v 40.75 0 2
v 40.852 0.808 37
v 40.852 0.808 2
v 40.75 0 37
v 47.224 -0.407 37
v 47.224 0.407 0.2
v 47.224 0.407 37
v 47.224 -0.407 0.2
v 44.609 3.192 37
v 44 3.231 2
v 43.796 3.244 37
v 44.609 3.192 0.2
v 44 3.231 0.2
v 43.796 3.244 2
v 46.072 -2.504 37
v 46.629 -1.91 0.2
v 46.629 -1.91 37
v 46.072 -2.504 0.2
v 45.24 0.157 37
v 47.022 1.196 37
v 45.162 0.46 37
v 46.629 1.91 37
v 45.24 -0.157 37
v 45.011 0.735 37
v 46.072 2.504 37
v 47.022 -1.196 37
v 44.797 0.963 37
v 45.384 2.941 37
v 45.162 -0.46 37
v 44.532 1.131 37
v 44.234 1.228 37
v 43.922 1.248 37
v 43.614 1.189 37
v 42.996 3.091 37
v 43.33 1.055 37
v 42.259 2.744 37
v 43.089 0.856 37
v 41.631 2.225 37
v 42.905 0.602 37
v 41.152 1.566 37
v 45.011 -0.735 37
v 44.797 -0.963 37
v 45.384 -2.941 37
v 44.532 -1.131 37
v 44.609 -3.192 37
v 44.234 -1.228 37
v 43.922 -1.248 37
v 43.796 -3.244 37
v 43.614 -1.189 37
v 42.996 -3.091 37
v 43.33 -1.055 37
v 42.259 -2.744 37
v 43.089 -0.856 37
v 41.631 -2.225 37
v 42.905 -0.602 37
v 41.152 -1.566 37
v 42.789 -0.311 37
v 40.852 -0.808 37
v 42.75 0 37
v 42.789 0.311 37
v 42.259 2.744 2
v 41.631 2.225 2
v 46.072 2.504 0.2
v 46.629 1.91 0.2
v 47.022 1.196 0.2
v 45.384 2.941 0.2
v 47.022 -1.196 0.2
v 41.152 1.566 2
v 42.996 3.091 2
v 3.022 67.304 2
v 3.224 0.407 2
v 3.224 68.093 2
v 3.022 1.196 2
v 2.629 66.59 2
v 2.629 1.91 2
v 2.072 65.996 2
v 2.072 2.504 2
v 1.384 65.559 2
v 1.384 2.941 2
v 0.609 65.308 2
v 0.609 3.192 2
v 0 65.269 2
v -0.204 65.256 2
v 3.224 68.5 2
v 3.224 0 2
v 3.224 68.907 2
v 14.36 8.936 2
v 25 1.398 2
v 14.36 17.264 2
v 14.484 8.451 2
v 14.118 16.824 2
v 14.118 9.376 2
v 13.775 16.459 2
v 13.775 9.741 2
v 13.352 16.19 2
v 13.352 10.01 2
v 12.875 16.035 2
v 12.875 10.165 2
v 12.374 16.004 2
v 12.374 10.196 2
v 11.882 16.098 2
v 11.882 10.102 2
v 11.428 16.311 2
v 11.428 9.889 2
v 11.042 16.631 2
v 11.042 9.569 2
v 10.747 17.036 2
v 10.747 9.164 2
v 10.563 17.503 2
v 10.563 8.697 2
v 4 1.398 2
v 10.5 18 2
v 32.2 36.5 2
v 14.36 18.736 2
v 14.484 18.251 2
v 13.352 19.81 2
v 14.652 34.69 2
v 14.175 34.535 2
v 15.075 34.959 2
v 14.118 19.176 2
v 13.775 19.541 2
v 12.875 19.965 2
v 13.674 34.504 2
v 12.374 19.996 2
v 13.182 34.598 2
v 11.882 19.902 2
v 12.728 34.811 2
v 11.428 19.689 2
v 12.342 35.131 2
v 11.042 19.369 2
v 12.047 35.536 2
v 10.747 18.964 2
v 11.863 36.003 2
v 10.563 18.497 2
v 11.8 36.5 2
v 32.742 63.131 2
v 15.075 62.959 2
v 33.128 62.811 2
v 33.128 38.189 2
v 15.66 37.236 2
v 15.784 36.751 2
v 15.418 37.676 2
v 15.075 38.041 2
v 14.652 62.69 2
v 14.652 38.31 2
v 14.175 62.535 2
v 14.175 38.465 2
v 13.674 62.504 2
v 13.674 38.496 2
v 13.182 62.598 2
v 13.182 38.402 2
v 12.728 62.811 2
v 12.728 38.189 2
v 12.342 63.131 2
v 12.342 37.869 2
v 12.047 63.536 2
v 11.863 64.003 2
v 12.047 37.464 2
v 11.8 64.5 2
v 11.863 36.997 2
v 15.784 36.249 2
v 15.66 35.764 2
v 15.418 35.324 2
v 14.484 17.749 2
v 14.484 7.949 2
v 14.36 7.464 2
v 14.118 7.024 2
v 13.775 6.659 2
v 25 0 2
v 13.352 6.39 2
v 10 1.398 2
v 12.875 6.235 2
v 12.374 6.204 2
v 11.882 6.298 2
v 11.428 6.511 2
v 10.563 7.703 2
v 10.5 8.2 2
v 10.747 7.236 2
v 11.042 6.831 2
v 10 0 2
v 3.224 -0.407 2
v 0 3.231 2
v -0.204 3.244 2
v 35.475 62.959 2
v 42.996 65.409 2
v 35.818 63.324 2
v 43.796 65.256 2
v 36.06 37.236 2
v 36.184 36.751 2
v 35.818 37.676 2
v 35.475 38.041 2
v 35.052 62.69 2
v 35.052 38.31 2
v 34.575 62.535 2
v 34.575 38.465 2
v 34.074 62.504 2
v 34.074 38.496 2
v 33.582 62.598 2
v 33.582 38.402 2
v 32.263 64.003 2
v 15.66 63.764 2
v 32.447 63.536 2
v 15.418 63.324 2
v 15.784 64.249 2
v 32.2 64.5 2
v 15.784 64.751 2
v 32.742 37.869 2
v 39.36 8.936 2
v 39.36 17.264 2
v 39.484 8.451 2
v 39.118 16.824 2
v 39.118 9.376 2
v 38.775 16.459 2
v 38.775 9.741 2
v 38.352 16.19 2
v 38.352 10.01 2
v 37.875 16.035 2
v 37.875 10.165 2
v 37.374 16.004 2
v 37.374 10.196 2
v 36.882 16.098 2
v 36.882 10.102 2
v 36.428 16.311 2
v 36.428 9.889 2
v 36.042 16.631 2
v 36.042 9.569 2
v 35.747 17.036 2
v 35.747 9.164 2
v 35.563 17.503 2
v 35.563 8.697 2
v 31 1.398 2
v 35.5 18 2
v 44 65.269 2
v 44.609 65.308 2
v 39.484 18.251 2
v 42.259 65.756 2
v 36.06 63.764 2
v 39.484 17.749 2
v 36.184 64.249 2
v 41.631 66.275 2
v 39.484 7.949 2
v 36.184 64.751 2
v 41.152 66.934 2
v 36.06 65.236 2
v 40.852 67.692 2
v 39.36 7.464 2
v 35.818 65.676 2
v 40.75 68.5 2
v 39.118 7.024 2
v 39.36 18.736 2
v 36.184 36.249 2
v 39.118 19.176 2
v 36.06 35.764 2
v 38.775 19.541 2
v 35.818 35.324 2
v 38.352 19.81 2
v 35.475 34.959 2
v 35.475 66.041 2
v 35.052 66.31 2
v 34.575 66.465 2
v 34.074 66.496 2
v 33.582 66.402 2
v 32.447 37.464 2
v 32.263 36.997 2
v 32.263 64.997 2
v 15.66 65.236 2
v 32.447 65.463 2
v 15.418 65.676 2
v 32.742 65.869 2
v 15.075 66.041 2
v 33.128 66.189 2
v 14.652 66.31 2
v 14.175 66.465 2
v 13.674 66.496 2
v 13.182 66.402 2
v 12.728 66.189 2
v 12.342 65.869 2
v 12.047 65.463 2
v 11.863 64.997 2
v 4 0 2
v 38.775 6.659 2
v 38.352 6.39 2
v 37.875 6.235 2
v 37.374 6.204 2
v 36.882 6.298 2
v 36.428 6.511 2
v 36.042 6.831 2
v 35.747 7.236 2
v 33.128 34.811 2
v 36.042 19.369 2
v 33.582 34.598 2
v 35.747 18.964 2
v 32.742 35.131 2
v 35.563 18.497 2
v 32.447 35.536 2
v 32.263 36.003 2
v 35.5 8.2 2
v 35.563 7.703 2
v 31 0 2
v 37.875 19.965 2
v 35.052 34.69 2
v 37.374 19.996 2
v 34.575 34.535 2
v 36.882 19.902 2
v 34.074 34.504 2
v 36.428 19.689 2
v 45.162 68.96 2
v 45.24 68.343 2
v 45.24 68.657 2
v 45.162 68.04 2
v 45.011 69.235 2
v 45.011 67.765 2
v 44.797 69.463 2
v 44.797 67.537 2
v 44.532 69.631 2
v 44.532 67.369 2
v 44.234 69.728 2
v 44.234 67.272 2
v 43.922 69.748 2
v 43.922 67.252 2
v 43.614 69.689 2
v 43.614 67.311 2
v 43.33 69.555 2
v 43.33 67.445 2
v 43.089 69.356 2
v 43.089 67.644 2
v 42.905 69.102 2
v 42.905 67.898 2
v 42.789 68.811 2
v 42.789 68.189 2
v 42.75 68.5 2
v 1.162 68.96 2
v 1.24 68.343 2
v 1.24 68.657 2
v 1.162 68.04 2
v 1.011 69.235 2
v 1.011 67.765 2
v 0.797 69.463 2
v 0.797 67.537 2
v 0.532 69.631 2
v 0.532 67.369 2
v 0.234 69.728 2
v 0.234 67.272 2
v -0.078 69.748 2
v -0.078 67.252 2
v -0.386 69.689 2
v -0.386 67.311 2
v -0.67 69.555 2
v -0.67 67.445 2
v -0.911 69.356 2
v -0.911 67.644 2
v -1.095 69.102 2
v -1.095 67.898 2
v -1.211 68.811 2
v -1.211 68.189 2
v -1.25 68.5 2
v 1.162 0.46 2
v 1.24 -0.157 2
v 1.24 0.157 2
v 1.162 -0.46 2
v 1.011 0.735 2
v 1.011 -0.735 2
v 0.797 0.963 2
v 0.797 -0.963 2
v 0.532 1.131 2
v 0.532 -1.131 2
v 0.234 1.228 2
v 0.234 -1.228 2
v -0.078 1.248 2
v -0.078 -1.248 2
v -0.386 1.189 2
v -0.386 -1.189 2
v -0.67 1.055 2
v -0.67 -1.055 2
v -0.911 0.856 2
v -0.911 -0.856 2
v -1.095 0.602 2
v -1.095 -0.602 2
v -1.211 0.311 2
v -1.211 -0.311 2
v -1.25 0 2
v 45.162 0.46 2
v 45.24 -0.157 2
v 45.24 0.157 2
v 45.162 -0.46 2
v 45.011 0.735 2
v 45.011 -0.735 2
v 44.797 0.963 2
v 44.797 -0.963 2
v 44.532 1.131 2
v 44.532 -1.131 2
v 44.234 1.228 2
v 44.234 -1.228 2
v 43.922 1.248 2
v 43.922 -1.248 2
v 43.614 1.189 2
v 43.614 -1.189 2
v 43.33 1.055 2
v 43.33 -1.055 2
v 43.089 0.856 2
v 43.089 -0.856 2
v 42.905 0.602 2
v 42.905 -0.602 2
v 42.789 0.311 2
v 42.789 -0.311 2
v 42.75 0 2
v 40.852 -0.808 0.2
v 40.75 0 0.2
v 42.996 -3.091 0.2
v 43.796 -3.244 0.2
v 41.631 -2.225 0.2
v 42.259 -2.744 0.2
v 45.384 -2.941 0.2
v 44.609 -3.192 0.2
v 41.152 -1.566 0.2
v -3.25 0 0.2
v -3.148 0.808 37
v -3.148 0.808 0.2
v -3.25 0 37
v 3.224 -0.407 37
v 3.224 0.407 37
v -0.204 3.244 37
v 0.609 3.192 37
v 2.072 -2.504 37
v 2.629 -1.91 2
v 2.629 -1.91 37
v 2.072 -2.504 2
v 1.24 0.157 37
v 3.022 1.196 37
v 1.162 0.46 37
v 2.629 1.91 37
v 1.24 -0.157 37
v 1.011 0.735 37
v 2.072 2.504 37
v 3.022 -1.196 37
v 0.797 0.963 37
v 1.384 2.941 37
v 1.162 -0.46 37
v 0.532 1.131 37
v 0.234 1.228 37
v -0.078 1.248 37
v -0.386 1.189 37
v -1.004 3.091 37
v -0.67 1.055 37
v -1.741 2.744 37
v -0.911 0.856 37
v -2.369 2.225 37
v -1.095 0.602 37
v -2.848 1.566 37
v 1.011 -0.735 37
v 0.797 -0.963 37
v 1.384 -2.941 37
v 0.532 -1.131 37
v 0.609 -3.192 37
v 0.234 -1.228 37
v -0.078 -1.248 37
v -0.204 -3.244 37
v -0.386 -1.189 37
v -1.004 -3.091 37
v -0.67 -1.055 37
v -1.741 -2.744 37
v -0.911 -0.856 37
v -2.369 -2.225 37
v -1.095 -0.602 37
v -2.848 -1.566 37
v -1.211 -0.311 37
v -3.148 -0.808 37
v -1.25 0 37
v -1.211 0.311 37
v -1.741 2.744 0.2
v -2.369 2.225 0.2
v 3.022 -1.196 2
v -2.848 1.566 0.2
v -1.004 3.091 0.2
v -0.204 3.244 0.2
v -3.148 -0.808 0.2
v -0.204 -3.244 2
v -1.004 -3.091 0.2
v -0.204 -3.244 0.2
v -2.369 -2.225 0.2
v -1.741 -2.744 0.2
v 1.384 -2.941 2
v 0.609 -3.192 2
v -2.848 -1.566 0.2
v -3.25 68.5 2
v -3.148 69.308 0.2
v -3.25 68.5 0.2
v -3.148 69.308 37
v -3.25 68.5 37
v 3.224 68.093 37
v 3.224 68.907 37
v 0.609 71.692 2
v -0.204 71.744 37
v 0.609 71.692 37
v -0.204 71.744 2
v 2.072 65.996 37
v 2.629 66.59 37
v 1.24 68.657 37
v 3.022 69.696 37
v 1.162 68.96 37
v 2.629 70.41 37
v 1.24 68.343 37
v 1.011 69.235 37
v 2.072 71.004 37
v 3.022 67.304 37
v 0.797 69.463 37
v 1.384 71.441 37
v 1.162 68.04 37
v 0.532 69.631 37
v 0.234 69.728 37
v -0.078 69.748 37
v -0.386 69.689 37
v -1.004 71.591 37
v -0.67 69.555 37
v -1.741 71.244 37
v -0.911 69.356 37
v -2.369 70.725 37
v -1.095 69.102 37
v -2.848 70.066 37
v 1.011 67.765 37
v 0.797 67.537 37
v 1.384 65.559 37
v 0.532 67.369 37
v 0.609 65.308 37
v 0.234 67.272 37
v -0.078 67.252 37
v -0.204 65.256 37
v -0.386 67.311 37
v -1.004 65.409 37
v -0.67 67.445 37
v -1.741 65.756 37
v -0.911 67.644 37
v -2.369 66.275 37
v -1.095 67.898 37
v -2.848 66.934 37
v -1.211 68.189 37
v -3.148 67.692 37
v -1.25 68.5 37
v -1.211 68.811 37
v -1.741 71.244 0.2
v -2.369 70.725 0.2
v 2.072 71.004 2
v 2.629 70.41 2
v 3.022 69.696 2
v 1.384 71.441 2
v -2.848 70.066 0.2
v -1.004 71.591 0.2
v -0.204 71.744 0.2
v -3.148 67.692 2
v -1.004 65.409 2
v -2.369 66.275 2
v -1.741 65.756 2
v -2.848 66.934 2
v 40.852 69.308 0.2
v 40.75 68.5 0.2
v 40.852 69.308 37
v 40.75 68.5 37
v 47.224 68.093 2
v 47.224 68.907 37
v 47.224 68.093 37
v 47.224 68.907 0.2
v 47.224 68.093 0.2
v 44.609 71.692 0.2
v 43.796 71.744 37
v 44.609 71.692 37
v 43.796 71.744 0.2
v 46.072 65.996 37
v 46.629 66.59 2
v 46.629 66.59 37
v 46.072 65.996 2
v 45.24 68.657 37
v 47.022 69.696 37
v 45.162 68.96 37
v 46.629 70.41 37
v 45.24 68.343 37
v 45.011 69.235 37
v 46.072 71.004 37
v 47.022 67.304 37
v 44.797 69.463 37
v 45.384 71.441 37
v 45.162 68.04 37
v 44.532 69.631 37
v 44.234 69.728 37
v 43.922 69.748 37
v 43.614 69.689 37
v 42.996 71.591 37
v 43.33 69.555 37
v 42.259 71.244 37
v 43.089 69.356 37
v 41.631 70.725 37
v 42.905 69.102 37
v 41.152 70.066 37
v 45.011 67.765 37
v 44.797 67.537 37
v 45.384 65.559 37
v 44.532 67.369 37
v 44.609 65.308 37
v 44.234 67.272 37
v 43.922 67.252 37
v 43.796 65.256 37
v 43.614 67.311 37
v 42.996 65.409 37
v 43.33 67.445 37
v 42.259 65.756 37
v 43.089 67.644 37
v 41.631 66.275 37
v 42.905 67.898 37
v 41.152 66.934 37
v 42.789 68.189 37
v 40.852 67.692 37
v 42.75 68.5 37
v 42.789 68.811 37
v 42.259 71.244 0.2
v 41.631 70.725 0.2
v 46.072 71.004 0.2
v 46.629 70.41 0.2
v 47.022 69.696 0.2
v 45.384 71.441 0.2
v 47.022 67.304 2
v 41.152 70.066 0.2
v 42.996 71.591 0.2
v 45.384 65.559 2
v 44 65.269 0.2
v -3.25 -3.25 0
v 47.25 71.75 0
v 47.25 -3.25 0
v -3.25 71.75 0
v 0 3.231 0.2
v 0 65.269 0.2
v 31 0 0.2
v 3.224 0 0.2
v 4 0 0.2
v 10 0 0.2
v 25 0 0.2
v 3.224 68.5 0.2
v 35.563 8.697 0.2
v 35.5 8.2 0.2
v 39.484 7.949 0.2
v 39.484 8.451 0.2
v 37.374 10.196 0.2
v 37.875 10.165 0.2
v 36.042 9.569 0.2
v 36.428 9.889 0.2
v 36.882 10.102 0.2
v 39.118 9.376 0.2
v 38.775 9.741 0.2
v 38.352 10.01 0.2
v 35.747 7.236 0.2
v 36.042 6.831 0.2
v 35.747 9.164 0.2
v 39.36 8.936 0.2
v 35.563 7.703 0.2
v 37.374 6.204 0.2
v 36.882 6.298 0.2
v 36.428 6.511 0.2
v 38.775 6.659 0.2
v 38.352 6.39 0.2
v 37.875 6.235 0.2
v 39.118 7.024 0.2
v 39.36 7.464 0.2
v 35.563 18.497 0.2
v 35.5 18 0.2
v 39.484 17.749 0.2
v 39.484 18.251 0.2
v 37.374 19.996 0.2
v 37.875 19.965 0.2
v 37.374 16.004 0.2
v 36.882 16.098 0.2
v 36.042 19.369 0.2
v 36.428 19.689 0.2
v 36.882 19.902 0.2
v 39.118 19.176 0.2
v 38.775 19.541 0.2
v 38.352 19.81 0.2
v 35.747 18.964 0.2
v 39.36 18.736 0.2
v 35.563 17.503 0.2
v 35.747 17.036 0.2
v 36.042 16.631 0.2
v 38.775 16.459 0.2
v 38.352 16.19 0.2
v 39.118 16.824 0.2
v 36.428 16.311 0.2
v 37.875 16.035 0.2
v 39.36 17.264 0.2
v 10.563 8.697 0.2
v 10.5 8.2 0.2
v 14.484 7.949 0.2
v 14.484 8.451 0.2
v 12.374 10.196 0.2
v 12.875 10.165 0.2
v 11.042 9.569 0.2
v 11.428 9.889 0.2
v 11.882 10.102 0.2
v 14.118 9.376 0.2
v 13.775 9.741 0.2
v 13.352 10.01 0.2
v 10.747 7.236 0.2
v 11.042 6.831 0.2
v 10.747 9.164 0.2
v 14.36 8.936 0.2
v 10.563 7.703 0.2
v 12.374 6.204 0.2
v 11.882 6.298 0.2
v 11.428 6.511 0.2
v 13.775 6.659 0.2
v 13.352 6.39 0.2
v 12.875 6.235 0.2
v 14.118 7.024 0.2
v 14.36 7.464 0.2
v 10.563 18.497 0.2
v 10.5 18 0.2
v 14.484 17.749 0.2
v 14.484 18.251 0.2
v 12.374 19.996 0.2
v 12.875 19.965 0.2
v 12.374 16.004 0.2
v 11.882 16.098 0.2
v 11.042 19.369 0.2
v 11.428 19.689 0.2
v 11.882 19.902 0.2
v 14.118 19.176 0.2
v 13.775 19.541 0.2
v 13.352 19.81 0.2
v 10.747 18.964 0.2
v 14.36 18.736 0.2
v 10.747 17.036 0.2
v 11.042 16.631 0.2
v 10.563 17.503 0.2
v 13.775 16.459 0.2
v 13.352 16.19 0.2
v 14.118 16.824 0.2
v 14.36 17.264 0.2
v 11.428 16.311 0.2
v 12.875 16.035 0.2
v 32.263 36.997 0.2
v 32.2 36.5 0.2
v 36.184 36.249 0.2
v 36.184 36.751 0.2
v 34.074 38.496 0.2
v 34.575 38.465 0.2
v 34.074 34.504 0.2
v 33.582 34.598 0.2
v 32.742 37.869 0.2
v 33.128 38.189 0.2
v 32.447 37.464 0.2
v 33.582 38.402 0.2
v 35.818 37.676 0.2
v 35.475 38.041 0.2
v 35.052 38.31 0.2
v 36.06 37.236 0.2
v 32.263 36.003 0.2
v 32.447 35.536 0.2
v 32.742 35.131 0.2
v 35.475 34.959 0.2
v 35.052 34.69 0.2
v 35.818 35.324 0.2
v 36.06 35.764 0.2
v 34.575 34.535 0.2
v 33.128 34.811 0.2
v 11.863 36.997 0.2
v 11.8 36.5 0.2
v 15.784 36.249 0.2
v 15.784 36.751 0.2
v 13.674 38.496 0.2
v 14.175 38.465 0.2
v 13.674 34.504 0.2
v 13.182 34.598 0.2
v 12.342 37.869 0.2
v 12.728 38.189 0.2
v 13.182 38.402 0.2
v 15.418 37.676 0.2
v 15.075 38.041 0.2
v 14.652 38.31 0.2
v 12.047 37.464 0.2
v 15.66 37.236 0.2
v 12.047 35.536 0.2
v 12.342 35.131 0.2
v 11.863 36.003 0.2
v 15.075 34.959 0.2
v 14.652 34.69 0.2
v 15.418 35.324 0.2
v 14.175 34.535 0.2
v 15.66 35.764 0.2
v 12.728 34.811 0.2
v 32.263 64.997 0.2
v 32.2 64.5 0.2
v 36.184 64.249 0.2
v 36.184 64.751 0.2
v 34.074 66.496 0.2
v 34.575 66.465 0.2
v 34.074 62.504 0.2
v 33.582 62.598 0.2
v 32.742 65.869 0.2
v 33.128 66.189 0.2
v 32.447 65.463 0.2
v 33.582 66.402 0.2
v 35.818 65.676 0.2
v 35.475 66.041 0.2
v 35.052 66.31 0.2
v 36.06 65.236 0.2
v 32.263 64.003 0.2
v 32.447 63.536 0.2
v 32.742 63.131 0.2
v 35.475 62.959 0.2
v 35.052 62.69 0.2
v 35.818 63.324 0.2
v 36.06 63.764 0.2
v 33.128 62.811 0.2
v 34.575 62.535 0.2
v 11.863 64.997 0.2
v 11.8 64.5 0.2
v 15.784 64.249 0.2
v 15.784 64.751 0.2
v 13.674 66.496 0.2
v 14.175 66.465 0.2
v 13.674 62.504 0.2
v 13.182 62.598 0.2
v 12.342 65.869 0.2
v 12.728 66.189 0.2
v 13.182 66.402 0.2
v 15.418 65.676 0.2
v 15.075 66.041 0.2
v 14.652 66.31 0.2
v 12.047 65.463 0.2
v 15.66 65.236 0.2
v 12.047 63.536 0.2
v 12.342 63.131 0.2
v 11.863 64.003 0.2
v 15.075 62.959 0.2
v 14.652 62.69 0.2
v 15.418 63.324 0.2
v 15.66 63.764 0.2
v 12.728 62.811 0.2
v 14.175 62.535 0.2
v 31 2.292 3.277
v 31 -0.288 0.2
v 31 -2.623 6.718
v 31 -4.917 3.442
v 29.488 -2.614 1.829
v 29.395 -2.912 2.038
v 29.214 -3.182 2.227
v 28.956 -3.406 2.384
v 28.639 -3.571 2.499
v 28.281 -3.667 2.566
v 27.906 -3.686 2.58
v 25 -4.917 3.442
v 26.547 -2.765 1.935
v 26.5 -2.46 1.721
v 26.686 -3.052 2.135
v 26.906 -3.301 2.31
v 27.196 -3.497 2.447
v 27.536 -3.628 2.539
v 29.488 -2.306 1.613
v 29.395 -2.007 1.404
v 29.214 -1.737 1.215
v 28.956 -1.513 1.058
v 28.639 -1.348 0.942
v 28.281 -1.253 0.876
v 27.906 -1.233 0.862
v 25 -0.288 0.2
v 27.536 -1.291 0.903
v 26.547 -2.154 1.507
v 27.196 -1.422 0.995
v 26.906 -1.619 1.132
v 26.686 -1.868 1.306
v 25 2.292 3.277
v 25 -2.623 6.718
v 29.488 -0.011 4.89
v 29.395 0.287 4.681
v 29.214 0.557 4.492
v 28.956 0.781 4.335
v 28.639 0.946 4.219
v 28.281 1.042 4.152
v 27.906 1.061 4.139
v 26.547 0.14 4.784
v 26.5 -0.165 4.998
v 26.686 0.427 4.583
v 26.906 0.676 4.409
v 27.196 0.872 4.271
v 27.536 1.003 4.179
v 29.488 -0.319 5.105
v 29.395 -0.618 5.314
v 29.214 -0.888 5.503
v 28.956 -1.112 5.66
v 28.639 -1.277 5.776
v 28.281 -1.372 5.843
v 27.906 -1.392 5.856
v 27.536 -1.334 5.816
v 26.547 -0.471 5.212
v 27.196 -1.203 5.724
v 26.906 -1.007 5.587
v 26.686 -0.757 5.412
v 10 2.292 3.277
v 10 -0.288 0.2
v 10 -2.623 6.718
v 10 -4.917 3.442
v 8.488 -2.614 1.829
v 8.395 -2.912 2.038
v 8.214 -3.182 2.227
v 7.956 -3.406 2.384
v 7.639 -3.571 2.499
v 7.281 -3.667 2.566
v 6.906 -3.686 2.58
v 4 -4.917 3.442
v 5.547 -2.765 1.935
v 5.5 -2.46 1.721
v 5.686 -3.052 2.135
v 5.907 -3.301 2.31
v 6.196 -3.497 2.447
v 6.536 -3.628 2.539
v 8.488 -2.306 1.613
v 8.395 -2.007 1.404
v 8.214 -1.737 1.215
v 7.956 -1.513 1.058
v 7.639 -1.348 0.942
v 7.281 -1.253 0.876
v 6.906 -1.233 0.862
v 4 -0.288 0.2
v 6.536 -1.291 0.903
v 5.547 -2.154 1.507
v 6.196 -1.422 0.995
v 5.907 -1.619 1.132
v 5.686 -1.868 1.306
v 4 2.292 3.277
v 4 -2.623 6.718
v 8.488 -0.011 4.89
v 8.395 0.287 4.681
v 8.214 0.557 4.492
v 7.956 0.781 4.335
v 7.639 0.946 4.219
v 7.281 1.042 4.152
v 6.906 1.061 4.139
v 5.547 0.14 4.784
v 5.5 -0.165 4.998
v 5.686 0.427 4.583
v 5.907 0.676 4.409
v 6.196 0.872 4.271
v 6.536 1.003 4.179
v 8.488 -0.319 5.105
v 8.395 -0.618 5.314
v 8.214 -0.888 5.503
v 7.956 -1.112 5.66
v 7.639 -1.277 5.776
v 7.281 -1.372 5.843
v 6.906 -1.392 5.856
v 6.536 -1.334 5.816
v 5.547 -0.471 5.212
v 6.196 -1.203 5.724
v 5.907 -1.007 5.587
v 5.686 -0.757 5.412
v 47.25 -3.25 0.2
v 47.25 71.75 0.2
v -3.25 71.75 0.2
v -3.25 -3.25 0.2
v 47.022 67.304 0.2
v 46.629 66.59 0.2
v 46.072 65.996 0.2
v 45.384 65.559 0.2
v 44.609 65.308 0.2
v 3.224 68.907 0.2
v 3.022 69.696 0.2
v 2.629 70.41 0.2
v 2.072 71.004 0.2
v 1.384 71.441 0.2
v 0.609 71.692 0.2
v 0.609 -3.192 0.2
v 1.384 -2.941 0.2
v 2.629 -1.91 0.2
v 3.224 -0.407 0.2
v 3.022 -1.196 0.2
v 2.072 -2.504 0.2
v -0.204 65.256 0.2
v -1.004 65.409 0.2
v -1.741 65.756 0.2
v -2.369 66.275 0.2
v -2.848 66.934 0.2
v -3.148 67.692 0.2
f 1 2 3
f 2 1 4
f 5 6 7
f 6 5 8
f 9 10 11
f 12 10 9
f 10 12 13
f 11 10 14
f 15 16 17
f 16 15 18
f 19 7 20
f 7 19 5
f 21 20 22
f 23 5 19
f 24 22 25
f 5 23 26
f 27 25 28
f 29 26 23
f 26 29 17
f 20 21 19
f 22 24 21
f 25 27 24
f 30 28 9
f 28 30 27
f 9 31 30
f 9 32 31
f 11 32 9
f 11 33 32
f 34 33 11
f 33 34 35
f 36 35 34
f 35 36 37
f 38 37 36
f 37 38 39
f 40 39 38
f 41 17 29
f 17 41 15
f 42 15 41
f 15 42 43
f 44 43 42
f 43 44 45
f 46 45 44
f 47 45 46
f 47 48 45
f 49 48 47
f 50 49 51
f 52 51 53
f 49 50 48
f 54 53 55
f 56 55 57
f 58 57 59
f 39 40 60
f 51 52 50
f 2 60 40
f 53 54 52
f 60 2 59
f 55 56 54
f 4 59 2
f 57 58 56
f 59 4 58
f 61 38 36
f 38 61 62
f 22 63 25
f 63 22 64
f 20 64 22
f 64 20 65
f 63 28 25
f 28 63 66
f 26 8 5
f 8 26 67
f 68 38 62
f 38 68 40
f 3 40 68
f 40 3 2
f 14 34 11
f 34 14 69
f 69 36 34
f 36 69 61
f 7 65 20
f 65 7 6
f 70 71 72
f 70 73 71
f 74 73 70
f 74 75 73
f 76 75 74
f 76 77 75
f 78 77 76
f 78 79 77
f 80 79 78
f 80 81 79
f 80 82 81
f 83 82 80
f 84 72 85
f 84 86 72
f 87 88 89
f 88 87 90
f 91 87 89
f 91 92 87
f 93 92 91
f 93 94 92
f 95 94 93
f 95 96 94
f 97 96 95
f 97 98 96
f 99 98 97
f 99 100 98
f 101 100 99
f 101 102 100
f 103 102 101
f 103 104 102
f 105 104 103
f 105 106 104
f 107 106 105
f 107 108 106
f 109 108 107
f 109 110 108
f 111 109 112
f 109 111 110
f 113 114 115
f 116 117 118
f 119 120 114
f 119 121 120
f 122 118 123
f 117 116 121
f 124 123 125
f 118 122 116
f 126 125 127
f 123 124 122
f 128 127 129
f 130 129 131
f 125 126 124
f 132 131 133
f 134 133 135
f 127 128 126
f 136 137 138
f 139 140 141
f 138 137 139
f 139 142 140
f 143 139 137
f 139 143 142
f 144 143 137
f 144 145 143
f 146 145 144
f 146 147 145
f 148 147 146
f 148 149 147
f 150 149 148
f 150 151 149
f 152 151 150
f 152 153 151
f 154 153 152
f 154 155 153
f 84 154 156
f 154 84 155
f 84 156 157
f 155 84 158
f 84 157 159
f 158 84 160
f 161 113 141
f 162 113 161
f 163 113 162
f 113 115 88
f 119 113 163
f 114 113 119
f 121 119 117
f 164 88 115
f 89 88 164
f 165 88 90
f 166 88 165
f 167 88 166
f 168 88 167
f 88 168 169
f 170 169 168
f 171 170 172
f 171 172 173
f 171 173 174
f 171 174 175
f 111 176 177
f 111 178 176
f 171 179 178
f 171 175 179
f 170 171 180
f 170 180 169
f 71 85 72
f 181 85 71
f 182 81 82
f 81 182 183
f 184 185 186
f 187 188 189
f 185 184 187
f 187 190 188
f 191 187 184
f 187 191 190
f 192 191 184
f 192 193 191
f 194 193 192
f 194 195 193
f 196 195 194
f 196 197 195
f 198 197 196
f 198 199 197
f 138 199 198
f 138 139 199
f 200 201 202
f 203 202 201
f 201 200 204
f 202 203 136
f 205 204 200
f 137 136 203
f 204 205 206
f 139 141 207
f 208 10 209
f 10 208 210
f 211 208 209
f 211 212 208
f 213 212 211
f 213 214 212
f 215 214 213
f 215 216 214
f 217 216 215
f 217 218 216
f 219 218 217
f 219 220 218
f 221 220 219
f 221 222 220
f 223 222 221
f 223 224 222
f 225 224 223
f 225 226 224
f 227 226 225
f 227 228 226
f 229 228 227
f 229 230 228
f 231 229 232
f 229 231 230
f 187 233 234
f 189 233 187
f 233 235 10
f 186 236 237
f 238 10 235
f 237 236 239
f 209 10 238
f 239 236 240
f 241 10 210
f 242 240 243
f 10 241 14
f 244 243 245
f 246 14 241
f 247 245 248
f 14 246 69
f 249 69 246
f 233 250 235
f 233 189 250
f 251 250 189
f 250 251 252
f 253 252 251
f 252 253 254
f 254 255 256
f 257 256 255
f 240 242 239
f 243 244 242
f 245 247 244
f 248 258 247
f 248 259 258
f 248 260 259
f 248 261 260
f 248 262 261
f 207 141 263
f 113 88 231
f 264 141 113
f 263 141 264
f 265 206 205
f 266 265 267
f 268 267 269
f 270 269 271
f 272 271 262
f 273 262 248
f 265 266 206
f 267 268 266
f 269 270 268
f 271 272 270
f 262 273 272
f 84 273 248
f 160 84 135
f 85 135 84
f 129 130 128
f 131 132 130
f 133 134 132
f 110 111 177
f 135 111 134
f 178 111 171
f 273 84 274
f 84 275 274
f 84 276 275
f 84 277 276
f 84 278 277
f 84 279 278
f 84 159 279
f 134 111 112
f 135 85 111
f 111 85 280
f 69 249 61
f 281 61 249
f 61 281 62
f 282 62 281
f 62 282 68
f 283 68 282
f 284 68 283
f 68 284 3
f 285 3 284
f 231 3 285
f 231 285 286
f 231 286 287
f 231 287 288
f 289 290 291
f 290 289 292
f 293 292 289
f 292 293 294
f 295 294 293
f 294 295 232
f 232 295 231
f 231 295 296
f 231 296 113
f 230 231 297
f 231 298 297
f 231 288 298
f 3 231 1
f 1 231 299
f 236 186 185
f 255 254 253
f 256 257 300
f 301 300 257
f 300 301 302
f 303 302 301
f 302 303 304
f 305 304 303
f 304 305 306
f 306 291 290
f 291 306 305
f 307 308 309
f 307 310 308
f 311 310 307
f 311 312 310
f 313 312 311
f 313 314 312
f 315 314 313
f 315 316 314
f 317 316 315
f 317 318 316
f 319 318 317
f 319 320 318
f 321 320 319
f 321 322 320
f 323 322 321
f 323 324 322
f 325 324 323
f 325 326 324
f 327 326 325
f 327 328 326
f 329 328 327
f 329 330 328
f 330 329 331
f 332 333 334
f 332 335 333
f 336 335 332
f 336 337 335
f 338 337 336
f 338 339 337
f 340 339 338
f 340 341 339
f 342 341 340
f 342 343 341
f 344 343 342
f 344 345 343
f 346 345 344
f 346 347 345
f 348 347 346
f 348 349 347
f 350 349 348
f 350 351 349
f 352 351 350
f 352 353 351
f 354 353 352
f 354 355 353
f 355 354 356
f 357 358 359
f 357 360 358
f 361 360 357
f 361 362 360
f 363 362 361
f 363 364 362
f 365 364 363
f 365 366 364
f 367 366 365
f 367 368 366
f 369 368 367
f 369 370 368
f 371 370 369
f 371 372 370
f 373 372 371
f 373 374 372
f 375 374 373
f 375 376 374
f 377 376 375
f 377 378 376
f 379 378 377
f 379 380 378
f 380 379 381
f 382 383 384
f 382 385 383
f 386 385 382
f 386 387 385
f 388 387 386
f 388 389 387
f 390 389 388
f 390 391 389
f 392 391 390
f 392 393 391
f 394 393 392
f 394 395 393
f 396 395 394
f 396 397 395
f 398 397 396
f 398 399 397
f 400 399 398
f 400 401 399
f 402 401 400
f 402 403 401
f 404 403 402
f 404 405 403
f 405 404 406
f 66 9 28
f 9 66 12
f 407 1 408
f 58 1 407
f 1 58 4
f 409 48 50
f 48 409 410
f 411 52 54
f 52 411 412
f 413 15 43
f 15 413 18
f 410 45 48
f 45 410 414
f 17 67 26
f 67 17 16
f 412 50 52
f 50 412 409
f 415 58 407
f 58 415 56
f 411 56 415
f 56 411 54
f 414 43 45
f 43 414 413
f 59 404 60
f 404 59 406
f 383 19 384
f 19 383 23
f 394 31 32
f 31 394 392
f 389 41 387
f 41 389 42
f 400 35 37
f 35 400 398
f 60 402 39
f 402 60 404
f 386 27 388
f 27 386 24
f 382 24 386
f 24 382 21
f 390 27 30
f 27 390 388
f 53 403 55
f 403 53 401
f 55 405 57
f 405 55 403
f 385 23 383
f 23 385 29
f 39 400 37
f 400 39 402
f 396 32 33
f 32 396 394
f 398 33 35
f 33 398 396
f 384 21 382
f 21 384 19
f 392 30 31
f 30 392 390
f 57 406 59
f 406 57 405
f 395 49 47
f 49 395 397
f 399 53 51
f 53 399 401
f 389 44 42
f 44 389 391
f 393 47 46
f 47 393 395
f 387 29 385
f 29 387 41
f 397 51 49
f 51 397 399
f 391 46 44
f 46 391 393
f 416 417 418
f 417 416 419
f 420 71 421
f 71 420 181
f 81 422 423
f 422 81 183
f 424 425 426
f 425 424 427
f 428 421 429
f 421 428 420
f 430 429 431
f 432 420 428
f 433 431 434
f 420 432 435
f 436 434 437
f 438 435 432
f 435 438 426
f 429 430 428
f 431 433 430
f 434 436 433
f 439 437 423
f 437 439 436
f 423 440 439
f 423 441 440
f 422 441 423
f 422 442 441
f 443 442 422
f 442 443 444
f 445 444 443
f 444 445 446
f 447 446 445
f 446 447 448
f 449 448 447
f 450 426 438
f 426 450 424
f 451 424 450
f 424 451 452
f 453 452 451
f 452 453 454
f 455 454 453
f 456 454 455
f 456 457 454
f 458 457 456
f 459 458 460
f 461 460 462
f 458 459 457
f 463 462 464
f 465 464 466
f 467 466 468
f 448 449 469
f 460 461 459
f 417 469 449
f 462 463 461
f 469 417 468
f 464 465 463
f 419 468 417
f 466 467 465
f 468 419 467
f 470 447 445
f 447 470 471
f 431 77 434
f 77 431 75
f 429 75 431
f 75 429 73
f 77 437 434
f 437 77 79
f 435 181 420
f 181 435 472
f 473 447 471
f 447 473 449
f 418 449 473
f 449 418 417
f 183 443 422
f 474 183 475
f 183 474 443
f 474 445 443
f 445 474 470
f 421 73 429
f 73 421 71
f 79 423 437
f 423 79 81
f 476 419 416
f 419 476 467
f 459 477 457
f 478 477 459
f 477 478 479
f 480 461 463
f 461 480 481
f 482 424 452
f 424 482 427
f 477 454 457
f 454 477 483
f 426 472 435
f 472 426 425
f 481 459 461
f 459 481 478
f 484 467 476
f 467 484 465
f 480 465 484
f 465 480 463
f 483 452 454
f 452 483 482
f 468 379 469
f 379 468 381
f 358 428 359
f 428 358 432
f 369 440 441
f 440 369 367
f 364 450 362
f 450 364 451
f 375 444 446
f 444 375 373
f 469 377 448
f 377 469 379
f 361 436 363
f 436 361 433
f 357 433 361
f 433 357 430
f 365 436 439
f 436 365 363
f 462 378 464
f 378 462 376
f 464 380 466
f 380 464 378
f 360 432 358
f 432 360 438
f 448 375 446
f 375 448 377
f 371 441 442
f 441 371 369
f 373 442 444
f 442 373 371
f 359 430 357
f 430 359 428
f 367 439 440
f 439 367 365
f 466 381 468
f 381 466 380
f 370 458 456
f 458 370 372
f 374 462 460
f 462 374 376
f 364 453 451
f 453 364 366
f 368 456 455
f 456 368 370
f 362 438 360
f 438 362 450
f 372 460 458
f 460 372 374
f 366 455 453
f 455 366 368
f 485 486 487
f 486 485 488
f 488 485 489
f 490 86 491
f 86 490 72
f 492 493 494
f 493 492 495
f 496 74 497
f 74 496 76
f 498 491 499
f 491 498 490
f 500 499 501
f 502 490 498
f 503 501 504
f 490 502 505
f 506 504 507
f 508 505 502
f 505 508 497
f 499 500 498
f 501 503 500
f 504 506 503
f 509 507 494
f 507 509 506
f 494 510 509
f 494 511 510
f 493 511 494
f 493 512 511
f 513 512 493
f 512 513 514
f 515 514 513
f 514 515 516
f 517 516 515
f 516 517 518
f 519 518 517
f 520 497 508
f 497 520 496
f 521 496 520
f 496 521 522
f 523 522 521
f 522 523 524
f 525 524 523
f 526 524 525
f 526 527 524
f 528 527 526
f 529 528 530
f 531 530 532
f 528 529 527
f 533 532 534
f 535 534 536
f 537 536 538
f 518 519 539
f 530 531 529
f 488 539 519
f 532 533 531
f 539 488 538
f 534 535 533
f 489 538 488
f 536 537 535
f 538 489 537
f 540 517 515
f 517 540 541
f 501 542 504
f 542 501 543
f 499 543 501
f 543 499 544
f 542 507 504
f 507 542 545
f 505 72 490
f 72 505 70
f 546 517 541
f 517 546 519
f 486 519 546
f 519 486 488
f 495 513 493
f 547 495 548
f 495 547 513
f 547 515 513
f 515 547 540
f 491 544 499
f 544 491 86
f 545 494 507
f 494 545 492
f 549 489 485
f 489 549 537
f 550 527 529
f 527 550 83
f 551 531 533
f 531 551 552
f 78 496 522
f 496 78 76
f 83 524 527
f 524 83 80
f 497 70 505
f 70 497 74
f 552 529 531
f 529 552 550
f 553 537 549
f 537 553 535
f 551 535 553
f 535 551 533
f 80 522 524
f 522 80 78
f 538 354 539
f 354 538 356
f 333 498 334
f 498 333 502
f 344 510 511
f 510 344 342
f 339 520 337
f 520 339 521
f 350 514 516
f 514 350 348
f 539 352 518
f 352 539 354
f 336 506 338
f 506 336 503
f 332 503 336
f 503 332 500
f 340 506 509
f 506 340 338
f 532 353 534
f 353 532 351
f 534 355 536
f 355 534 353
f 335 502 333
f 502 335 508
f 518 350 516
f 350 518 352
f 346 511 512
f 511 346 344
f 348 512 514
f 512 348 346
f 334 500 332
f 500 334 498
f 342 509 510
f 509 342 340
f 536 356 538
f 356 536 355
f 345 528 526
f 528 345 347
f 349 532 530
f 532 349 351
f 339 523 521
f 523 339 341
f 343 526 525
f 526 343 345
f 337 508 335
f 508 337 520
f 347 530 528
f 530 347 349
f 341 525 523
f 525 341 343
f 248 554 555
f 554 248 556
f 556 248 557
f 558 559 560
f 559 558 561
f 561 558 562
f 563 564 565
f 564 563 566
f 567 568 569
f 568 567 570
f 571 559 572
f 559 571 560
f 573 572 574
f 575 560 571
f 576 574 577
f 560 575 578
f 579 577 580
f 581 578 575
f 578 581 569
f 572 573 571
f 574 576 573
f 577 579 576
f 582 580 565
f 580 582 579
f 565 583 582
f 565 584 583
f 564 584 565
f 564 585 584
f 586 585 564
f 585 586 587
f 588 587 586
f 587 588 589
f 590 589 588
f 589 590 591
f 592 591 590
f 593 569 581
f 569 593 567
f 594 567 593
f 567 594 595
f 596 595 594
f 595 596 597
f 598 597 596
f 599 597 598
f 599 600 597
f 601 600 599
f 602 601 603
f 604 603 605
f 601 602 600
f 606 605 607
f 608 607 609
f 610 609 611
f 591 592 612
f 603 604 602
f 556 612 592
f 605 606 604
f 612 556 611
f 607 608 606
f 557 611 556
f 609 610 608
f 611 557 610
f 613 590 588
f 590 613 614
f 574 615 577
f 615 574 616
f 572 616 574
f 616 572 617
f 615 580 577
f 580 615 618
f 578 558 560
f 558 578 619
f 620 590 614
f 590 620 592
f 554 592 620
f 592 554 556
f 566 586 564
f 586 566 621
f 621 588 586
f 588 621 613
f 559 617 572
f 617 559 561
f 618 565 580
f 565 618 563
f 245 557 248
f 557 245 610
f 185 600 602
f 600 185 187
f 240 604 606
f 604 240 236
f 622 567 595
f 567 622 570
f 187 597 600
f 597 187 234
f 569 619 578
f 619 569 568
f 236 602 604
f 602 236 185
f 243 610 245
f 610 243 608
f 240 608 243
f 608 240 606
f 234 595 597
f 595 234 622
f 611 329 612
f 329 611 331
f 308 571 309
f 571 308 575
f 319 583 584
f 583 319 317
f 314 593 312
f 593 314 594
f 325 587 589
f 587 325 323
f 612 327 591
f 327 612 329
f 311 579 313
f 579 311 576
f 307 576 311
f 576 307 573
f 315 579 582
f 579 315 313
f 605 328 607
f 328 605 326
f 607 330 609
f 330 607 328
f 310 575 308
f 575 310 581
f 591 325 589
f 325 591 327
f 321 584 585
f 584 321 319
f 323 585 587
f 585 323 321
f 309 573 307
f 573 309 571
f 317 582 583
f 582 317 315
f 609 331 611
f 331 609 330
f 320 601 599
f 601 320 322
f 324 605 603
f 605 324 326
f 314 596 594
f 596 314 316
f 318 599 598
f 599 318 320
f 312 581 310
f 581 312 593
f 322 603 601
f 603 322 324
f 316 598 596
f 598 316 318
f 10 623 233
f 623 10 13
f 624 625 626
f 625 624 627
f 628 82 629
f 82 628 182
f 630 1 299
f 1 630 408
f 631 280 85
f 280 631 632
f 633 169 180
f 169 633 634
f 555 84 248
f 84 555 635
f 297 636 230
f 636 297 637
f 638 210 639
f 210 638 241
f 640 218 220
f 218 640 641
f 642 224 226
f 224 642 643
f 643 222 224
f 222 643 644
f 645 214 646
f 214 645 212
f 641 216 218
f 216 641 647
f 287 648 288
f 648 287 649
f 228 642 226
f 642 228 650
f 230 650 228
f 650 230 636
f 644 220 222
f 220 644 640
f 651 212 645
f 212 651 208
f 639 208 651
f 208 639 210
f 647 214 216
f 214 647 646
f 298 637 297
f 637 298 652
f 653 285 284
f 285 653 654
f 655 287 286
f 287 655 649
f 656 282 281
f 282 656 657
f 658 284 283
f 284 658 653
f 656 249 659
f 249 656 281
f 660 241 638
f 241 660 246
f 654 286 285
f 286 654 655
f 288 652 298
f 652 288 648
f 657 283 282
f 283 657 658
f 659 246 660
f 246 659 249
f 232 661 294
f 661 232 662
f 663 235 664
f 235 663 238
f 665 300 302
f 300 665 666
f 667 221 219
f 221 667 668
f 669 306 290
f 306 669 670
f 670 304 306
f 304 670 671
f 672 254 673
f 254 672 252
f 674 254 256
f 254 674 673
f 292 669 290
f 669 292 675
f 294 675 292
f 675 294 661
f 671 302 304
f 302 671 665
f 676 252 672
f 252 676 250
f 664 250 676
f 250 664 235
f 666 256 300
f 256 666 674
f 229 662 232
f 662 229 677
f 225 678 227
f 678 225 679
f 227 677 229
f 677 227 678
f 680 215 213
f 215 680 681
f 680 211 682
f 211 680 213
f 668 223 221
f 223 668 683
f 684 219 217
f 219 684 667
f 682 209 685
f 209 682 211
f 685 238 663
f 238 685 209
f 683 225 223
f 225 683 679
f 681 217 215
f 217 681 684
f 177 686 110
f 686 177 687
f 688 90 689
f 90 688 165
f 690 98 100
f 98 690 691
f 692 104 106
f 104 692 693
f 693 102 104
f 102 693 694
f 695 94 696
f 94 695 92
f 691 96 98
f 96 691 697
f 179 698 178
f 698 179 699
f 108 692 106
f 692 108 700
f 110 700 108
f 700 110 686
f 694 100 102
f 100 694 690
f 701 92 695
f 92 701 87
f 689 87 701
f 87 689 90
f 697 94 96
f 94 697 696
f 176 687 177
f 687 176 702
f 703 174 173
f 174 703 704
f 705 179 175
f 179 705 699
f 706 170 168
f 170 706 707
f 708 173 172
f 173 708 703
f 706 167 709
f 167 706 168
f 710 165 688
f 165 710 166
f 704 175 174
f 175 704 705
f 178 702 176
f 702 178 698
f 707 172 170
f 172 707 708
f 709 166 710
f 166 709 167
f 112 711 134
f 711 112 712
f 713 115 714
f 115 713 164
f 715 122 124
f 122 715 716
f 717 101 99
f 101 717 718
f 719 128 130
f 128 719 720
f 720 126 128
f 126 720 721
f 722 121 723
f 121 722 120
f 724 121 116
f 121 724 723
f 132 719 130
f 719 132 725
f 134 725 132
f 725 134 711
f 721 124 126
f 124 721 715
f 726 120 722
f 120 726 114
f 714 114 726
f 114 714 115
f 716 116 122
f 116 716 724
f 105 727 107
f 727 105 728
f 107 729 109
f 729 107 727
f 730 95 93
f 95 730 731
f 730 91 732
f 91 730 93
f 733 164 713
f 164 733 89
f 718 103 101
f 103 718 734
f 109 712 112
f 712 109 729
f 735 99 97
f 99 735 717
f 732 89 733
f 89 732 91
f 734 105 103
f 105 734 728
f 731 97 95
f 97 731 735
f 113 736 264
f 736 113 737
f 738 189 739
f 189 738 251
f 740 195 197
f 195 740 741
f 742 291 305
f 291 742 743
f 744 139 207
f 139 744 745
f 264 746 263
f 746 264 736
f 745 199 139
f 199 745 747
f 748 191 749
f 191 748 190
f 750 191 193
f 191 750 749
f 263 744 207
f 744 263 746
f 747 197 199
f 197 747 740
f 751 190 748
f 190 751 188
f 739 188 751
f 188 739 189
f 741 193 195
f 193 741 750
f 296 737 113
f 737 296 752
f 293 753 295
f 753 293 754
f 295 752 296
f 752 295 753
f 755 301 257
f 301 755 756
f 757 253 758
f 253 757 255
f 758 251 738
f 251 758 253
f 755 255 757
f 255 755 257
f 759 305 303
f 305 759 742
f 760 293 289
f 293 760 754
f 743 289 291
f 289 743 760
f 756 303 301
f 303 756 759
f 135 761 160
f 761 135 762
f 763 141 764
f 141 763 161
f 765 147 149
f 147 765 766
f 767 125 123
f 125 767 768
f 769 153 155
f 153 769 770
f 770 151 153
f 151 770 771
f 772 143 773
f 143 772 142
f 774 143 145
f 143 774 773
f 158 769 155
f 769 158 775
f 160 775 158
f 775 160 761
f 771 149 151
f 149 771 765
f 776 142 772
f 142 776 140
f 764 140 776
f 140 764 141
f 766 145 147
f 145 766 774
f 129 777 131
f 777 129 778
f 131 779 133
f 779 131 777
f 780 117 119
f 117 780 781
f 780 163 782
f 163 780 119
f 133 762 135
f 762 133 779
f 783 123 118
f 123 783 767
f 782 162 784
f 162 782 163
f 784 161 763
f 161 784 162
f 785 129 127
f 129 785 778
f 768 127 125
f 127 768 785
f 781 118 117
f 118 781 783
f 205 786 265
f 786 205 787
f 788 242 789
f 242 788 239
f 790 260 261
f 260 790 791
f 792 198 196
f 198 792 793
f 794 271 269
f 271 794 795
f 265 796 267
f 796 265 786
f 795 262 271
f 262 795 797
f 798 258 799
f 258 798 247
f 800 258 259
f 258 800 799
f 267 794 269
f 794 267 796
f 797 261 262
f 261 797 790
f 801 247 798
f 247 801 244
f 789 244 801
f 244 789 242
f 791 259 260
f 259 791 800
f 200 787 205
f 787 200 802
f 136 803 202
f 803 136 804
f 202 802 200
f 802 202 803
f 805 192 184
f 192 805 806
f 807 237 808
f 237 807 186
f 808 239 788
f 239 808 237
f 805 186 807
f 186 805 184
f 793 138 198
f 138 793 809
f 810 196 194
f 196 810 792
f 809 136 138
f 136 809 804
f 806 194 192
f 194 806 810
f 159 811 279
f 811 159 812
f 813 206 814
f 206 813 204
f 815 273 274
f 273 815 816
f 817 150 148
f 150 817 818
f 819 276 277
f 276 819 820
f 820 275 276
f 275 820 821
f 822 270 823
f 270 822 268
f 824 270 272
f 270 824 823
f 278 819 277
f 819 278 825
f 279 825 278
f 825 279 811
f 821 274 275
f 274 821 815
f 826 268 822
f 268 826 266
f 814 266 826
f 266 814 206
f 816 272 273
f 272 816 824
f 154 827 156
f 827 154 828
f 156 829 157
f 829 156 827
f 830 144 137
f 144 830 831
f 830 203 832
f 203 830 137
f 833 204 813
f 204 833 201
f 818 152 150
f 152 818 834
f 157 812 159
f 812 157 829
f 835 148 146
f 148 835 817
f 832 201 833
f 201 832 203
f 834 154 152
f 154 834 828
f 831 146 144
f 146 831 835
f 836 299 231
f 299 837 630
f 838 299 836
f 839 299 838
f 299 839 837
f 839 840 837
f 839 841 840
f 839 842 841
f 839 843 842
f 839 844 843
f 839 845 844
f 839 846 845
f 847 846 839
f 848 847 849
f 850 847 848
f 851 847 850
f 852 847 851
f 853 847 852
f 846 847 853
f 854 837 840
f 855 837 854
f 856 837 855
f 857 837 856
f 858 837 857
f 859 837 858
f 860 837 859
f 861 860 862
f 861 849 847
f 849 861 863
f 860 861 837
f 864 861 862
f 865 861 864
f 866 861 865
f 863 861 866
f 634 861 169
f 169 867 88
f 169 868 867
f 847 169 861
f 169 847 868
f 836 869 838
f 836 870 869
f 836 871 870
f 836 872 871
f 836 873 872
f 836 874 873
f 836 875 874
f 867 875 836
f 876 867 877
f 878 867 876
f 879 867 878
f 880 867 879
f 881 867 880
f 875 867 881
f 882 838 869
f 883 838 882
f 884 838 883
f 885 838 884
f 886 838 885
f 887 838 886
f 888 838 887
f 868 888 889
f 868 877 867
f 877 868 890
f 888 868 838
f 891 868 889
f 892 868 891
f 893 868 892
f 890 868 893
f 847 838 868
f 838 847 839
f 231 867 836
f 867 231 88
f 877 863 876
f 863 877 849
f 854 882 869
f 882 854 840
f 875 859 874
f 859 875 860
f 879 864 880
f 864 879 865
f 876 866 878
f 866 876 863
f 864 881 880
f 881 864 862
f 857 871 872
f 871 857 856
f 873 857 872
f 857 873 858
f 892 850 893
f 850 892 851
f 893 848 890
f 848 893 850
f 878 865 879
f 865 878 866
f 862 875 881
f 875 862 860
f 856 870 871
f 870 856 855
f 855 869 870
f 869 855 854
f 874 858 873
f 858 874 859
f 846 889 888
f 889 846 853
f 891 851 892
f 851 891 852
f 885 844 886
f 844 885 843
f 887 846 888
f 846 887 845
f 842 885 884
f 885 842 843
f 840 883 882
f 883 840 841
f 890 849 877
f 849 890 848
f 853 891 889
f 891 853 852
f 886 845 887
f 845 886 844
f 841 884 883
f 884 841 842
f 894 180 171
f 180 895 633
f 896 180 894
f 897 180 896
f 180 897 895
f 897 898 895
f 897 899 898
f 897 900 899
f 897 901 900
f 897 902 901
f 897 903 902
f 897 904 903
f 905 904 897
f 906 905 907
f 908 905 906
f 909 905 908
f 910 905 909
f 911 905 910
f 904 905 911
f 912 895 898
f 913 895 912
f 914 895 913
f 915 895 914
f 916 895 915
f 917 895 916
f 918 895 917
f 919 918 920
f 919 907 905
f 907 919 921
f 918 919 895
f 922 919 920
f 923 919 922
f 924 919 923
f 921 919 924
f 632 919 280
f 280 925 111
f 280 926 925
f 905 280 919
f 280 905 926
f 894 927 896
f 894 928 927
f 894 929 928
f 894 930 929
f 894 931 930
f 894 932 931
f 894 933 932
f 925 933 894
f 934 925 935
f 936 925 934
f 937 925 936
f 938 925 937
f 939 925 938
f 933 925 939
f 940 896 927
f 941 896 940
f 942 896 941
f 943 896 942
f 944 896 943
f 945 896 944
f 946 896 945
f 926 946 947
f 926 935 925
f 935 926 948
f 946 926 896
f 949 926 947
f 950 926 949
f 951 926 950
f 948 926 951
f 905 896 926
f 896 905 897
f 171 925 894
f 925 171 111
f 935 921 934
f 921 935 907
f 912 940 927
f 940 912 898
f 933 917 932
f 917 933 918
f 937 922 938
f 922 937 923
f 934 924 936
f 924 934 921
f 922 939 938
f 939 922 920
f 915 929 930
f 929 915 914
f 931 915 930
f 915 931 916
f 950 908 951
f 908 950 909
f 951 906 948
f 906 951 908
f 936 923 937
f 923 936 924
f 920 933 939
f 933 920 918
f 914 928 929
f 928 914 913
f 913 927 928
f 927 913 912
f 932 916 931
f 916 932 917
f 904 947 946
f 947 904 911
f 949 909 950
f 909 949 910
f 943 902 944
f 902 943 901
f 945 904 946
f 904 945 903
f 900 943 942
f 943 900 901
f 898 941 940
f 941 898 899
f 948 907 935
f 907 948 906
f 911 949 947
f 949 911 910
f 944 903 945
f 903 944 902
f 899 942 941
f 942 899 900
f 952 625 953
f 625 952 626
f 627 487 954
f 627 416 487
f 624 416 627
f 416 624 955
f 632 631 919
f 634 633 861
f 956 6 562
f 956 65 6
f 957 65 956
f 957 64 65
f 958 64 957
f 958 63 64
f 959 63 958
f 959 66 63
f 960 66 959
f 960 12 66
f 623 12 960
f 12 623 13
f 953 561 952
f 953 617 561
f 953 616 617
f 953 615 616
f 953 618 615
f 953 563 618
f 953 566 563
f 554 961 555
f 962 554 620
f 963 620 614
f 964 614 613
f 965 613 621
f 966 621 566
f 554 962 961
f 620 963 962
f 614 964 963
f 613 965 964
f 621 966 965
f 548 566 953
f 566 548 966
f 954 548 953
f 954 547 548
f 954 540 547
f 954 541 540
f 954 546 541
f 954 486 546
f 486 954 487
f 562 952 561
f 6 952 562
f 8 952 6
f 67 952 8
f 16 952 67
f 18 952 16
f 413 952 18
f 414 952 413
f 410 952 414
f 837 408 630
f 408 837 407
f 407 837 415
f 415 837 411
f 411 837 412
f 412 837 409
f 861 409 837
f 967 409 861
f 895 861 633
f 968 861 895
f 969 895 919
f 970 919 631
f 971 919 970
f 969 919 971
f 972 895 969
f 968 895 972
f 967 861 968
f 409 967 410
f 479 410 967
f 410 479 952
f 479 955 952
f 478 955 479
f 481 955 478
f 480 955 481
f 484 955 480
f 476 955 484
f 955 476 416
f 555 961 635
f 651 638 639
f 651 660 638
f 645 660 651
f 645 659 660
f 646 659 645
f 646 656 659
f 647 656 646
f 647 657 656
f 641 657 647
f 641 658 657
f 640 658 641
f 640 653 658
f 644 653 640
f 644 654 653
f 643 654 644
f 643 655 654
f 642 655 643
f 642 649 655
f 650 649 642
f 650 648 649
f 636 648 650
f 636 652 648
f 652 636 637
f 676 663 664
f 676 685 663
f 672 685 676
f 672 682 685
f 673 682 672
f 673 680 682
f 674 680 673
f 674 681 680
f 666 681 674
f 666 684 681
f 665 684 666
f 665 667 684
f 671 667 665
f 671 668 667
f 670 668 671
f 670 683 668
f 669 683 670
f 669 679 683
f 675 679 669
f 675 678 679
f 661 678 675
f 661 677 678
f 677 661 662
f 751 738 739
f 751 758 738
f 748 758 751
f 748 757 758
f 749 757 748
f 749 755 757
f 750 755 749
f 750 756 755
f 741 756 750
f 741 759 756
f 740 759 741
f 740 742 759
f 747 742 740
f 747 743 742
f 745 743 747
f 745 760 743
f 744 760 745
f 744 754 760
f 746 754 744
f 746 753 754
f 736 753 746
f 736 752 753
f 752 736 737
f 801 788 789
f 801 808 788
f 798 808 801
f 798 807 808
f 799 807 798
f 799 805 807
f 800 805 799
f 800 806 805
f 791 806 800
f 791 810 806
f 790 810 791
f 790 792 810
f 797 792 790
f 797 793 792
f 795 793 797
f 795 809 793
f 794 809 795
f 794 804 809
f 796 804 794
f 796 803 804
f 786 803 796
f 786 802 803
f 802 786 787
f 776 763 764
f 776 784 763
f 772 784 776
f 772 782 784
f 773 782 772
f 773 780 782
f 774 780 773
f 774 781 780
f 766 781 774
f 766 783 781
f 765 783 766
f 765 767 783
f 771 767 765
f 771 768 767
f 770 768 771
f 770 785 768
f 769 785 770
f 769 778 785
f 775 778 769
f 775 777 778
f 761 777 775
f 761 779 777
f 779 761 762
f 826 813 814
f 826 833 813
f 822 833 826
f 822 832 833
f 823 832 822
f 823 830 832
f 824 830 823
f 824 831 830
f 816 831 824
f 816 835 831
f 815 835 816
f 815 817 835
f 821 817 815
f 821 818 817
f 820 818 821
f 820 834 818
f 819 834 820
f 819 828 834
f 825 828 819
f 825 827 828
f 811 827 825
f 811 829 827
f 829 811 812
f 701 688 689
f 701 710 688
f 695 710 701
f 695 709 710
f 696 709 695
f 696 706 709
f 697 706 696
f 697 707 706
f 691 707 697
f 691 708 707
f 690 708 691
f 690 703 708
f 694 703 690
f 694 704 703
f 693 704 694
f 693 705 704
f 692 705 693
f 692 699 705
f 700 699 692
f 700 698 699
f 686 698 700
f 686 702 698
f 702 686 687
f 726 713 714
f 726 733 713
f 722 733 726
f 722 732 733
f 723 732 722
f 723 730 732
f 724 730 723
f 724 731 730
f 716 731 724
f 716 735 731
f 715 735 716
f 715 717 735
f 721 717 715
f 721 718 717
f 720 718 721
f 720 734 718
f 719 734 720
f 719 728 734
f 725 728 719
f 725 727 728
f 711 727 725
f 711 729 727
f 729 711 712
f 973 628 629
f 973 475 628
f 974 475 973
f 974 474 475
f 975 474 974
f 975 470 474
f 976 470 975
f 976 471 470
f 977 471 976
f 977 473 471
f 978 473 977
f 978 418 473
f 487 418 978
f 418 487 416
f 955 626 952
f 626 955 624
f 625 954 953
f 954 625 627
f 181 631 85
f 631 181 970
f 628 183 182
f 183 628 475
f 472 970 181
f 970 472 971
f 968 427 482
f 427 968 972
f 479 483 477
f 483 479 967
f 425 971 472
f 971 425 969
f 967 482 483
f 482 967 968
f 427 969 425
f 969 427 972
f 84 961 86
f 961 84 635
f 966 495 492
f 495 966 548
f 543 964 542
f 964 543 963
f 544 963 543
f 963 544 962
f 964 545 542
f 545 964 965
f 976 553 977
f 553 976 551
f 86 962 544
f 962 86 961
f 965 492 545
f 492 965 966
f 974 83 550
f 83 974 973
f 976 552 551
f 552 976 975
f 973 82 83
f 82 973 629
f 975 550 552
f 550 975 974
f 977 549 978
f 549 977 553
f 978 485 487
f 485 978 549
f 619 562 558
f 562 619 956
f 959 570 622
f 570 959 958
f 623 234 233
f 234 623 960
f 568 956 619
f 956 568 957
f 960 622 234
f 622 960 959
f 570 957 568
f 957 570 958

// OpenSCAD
/*
 * Created by:
 * Thomas Buck <xythobuz@xythobuz.de> in June 2016
 *
 * Licensed under the
 * Creative Commons - Attribution - Share Alike license.
 */

// -----------------------------------------------------------

dist_x = 44;
dist_y = 68.5;
height = 35;
base_height = 2;
diameter = 6.5;
hole = 2.5;
cuts = 4;

vtx_width = 21;
vtx_height = 28;
vtx_x = ((dist_x - vtx_width) / 2) - 3;
vtx_y = 2;
vtx_off_1 = 0.15;
vtx_off_2 = 0.5;

osd_width = 51;
osd_height = 24;
osd_x = (dist_x - osd_width) / 2;
osd_y = dist_y - osd_height - 6;
osd_off_1 = 0.3;
osd_off_2 = 0.7;

display_hole = 3;
display_width = 6;
display_length = 6;
display_depth = 2;
display_depth_add = 2;
display_dist = 21;
display_off_x = 13;
display_off_y = 2.23;
display_off_z = -3.08;
display_angle = 35;

add_handle = 0; // [0,1]
handle = 3;

helper_plate = 0.2;

$fn = 25;

// -----------------------------------------------------------

module leg() {
    difference() {
        cylinder(d = diameter, h = height);
        
        translate([0, 0, -1])
            cylinder(d = hole, h = height + 2);
    }
}

module legs() {
    leg();
    
    translate([dist_x, 0, 0])
        leg();
    
    translate([dist_x, dist_y, 0])
        leg();
    
    translate([0, dist_y, 0])
        leg();
}

module handle() {
    rotate([90, 0, 0])
    translate([dist_x / 2, dist_y / 2 + handle / 2, base_height])
    difference() {
        cylinder(d = dist_x, h = handle);
        translate([0, 0, -1])
            cylinder(d = dist_x - handle, h = handle + 2);
        translate([-dist_x / 2, -dist_x / 2, -1])
            cube([dist_x, dist_x / 2, handle + 2]);
    }
}

module display_nub() {
    translate([0, 0, -display_depth_add])
    difference() {
        cube([display_width, display_length, display_depth + display_depth_add]);
        translate([display_width / 2, display_width / 2, -1])
            cylinder(d = display_hole, h = display_depth + display_depth_add + 2);
    }
}

module display() {
    translate([display_off_x, -display_length + display_off_y, display_off_z])
    rotate([display_angle, 0, 0])
    union() {
        display_nub();
        translate([display_dist, 0, 0])
            display_nub();
    }
}

module base() {
    difference() {
        cube([dist_x, dist_y, base_height]);
        
        // VTX holes
        translate([vtx_x - (cuts / 2), vtx_y + (cuts / 2) + (vtx_off_1 * vtx_height), -1])
            cylinder(d = cuts, h = base_height + 2);
        
        translate([vtx_x - (cuts / 2), vtx_y + (cuts / 2) + (vtx_off_2 * vtx_height), -1])
            cylinder(d = cuts, h = base_height + 2);
        
        translate([vtx_x + (cuts / 2) + vtx_width, vtx_y + (cuts / 2) + (vtx_off_1 * vtx_height), -1])
            cylinder(d = cuts, h = base_height + 2);
        
        translate([vtx_x + (cuts / 2) + vtx_width, vtx_y + (cuts / 2) + (vtx_off_2 * vtx_height), -1])
            cylinder(d = cuts, h = base_height + 2);
        
        // OSD holes
        translate([osd_x - (cuts / 2) + (osd_off_1 * osd_width), osd_y - (cuts / 2), -1])
            cylinder(d = cuts, h = base_height + 2);
        
        translate([osd_x - (cuts / 2) + (osd_off_2 * osd_width), osd_y - (cuts / 2), -1])
            cylinder(d = cuts, h = base_height + 2);
        
        translate([osd_x - (cuts / 2) + (osd_off_1 * osd_width), osd_y + (cuts / 2) + osd_height, -1])
            cylinder(d = cuts, h = base_height + 2);
        
        translate([osd_x - (cuts / 2) + (osd_off_2 * osd_width), osd_y + (cuts / 2) + osd_height, -1])
            cylinder(d = cuts, h = base_height + 2);
    }
    
    translate([-diameter / 2, -diameter / 2, base_height - helper_plate])
        cube([dist_x + diameter, dist_y + diameter, helper_plate]);
    
    cylinder(d = diameter, h = base_height);
    
    translate([dist_x, 0, 0])
        cylinder(d = diameter, h = base_height);
    
    translate([dist_x, dist_y, 0])
        cylinder(d = diameter, h = base_height);
    
    translate([0, dist_y, 0])
        cylinder(d = diameter, h = base_height);
    
    display();
    
    if (add_handle) {
        handle();
    }
}

// -----------------------------------------------------------

translate([dist_x, 0, base_height + height])
rotate([0, 180, 0])
union() {
    legs();
    
    translate([0, 0, height])
        base();
    
    %translate([vtx_x, vtx_y, height + base_height])
        cube([vtx_width, vtx_height, 5]);
    
    %translate([osd_x, osd_y, height + base_height])
        cube([osd_width, osd_height, 10]);
}
